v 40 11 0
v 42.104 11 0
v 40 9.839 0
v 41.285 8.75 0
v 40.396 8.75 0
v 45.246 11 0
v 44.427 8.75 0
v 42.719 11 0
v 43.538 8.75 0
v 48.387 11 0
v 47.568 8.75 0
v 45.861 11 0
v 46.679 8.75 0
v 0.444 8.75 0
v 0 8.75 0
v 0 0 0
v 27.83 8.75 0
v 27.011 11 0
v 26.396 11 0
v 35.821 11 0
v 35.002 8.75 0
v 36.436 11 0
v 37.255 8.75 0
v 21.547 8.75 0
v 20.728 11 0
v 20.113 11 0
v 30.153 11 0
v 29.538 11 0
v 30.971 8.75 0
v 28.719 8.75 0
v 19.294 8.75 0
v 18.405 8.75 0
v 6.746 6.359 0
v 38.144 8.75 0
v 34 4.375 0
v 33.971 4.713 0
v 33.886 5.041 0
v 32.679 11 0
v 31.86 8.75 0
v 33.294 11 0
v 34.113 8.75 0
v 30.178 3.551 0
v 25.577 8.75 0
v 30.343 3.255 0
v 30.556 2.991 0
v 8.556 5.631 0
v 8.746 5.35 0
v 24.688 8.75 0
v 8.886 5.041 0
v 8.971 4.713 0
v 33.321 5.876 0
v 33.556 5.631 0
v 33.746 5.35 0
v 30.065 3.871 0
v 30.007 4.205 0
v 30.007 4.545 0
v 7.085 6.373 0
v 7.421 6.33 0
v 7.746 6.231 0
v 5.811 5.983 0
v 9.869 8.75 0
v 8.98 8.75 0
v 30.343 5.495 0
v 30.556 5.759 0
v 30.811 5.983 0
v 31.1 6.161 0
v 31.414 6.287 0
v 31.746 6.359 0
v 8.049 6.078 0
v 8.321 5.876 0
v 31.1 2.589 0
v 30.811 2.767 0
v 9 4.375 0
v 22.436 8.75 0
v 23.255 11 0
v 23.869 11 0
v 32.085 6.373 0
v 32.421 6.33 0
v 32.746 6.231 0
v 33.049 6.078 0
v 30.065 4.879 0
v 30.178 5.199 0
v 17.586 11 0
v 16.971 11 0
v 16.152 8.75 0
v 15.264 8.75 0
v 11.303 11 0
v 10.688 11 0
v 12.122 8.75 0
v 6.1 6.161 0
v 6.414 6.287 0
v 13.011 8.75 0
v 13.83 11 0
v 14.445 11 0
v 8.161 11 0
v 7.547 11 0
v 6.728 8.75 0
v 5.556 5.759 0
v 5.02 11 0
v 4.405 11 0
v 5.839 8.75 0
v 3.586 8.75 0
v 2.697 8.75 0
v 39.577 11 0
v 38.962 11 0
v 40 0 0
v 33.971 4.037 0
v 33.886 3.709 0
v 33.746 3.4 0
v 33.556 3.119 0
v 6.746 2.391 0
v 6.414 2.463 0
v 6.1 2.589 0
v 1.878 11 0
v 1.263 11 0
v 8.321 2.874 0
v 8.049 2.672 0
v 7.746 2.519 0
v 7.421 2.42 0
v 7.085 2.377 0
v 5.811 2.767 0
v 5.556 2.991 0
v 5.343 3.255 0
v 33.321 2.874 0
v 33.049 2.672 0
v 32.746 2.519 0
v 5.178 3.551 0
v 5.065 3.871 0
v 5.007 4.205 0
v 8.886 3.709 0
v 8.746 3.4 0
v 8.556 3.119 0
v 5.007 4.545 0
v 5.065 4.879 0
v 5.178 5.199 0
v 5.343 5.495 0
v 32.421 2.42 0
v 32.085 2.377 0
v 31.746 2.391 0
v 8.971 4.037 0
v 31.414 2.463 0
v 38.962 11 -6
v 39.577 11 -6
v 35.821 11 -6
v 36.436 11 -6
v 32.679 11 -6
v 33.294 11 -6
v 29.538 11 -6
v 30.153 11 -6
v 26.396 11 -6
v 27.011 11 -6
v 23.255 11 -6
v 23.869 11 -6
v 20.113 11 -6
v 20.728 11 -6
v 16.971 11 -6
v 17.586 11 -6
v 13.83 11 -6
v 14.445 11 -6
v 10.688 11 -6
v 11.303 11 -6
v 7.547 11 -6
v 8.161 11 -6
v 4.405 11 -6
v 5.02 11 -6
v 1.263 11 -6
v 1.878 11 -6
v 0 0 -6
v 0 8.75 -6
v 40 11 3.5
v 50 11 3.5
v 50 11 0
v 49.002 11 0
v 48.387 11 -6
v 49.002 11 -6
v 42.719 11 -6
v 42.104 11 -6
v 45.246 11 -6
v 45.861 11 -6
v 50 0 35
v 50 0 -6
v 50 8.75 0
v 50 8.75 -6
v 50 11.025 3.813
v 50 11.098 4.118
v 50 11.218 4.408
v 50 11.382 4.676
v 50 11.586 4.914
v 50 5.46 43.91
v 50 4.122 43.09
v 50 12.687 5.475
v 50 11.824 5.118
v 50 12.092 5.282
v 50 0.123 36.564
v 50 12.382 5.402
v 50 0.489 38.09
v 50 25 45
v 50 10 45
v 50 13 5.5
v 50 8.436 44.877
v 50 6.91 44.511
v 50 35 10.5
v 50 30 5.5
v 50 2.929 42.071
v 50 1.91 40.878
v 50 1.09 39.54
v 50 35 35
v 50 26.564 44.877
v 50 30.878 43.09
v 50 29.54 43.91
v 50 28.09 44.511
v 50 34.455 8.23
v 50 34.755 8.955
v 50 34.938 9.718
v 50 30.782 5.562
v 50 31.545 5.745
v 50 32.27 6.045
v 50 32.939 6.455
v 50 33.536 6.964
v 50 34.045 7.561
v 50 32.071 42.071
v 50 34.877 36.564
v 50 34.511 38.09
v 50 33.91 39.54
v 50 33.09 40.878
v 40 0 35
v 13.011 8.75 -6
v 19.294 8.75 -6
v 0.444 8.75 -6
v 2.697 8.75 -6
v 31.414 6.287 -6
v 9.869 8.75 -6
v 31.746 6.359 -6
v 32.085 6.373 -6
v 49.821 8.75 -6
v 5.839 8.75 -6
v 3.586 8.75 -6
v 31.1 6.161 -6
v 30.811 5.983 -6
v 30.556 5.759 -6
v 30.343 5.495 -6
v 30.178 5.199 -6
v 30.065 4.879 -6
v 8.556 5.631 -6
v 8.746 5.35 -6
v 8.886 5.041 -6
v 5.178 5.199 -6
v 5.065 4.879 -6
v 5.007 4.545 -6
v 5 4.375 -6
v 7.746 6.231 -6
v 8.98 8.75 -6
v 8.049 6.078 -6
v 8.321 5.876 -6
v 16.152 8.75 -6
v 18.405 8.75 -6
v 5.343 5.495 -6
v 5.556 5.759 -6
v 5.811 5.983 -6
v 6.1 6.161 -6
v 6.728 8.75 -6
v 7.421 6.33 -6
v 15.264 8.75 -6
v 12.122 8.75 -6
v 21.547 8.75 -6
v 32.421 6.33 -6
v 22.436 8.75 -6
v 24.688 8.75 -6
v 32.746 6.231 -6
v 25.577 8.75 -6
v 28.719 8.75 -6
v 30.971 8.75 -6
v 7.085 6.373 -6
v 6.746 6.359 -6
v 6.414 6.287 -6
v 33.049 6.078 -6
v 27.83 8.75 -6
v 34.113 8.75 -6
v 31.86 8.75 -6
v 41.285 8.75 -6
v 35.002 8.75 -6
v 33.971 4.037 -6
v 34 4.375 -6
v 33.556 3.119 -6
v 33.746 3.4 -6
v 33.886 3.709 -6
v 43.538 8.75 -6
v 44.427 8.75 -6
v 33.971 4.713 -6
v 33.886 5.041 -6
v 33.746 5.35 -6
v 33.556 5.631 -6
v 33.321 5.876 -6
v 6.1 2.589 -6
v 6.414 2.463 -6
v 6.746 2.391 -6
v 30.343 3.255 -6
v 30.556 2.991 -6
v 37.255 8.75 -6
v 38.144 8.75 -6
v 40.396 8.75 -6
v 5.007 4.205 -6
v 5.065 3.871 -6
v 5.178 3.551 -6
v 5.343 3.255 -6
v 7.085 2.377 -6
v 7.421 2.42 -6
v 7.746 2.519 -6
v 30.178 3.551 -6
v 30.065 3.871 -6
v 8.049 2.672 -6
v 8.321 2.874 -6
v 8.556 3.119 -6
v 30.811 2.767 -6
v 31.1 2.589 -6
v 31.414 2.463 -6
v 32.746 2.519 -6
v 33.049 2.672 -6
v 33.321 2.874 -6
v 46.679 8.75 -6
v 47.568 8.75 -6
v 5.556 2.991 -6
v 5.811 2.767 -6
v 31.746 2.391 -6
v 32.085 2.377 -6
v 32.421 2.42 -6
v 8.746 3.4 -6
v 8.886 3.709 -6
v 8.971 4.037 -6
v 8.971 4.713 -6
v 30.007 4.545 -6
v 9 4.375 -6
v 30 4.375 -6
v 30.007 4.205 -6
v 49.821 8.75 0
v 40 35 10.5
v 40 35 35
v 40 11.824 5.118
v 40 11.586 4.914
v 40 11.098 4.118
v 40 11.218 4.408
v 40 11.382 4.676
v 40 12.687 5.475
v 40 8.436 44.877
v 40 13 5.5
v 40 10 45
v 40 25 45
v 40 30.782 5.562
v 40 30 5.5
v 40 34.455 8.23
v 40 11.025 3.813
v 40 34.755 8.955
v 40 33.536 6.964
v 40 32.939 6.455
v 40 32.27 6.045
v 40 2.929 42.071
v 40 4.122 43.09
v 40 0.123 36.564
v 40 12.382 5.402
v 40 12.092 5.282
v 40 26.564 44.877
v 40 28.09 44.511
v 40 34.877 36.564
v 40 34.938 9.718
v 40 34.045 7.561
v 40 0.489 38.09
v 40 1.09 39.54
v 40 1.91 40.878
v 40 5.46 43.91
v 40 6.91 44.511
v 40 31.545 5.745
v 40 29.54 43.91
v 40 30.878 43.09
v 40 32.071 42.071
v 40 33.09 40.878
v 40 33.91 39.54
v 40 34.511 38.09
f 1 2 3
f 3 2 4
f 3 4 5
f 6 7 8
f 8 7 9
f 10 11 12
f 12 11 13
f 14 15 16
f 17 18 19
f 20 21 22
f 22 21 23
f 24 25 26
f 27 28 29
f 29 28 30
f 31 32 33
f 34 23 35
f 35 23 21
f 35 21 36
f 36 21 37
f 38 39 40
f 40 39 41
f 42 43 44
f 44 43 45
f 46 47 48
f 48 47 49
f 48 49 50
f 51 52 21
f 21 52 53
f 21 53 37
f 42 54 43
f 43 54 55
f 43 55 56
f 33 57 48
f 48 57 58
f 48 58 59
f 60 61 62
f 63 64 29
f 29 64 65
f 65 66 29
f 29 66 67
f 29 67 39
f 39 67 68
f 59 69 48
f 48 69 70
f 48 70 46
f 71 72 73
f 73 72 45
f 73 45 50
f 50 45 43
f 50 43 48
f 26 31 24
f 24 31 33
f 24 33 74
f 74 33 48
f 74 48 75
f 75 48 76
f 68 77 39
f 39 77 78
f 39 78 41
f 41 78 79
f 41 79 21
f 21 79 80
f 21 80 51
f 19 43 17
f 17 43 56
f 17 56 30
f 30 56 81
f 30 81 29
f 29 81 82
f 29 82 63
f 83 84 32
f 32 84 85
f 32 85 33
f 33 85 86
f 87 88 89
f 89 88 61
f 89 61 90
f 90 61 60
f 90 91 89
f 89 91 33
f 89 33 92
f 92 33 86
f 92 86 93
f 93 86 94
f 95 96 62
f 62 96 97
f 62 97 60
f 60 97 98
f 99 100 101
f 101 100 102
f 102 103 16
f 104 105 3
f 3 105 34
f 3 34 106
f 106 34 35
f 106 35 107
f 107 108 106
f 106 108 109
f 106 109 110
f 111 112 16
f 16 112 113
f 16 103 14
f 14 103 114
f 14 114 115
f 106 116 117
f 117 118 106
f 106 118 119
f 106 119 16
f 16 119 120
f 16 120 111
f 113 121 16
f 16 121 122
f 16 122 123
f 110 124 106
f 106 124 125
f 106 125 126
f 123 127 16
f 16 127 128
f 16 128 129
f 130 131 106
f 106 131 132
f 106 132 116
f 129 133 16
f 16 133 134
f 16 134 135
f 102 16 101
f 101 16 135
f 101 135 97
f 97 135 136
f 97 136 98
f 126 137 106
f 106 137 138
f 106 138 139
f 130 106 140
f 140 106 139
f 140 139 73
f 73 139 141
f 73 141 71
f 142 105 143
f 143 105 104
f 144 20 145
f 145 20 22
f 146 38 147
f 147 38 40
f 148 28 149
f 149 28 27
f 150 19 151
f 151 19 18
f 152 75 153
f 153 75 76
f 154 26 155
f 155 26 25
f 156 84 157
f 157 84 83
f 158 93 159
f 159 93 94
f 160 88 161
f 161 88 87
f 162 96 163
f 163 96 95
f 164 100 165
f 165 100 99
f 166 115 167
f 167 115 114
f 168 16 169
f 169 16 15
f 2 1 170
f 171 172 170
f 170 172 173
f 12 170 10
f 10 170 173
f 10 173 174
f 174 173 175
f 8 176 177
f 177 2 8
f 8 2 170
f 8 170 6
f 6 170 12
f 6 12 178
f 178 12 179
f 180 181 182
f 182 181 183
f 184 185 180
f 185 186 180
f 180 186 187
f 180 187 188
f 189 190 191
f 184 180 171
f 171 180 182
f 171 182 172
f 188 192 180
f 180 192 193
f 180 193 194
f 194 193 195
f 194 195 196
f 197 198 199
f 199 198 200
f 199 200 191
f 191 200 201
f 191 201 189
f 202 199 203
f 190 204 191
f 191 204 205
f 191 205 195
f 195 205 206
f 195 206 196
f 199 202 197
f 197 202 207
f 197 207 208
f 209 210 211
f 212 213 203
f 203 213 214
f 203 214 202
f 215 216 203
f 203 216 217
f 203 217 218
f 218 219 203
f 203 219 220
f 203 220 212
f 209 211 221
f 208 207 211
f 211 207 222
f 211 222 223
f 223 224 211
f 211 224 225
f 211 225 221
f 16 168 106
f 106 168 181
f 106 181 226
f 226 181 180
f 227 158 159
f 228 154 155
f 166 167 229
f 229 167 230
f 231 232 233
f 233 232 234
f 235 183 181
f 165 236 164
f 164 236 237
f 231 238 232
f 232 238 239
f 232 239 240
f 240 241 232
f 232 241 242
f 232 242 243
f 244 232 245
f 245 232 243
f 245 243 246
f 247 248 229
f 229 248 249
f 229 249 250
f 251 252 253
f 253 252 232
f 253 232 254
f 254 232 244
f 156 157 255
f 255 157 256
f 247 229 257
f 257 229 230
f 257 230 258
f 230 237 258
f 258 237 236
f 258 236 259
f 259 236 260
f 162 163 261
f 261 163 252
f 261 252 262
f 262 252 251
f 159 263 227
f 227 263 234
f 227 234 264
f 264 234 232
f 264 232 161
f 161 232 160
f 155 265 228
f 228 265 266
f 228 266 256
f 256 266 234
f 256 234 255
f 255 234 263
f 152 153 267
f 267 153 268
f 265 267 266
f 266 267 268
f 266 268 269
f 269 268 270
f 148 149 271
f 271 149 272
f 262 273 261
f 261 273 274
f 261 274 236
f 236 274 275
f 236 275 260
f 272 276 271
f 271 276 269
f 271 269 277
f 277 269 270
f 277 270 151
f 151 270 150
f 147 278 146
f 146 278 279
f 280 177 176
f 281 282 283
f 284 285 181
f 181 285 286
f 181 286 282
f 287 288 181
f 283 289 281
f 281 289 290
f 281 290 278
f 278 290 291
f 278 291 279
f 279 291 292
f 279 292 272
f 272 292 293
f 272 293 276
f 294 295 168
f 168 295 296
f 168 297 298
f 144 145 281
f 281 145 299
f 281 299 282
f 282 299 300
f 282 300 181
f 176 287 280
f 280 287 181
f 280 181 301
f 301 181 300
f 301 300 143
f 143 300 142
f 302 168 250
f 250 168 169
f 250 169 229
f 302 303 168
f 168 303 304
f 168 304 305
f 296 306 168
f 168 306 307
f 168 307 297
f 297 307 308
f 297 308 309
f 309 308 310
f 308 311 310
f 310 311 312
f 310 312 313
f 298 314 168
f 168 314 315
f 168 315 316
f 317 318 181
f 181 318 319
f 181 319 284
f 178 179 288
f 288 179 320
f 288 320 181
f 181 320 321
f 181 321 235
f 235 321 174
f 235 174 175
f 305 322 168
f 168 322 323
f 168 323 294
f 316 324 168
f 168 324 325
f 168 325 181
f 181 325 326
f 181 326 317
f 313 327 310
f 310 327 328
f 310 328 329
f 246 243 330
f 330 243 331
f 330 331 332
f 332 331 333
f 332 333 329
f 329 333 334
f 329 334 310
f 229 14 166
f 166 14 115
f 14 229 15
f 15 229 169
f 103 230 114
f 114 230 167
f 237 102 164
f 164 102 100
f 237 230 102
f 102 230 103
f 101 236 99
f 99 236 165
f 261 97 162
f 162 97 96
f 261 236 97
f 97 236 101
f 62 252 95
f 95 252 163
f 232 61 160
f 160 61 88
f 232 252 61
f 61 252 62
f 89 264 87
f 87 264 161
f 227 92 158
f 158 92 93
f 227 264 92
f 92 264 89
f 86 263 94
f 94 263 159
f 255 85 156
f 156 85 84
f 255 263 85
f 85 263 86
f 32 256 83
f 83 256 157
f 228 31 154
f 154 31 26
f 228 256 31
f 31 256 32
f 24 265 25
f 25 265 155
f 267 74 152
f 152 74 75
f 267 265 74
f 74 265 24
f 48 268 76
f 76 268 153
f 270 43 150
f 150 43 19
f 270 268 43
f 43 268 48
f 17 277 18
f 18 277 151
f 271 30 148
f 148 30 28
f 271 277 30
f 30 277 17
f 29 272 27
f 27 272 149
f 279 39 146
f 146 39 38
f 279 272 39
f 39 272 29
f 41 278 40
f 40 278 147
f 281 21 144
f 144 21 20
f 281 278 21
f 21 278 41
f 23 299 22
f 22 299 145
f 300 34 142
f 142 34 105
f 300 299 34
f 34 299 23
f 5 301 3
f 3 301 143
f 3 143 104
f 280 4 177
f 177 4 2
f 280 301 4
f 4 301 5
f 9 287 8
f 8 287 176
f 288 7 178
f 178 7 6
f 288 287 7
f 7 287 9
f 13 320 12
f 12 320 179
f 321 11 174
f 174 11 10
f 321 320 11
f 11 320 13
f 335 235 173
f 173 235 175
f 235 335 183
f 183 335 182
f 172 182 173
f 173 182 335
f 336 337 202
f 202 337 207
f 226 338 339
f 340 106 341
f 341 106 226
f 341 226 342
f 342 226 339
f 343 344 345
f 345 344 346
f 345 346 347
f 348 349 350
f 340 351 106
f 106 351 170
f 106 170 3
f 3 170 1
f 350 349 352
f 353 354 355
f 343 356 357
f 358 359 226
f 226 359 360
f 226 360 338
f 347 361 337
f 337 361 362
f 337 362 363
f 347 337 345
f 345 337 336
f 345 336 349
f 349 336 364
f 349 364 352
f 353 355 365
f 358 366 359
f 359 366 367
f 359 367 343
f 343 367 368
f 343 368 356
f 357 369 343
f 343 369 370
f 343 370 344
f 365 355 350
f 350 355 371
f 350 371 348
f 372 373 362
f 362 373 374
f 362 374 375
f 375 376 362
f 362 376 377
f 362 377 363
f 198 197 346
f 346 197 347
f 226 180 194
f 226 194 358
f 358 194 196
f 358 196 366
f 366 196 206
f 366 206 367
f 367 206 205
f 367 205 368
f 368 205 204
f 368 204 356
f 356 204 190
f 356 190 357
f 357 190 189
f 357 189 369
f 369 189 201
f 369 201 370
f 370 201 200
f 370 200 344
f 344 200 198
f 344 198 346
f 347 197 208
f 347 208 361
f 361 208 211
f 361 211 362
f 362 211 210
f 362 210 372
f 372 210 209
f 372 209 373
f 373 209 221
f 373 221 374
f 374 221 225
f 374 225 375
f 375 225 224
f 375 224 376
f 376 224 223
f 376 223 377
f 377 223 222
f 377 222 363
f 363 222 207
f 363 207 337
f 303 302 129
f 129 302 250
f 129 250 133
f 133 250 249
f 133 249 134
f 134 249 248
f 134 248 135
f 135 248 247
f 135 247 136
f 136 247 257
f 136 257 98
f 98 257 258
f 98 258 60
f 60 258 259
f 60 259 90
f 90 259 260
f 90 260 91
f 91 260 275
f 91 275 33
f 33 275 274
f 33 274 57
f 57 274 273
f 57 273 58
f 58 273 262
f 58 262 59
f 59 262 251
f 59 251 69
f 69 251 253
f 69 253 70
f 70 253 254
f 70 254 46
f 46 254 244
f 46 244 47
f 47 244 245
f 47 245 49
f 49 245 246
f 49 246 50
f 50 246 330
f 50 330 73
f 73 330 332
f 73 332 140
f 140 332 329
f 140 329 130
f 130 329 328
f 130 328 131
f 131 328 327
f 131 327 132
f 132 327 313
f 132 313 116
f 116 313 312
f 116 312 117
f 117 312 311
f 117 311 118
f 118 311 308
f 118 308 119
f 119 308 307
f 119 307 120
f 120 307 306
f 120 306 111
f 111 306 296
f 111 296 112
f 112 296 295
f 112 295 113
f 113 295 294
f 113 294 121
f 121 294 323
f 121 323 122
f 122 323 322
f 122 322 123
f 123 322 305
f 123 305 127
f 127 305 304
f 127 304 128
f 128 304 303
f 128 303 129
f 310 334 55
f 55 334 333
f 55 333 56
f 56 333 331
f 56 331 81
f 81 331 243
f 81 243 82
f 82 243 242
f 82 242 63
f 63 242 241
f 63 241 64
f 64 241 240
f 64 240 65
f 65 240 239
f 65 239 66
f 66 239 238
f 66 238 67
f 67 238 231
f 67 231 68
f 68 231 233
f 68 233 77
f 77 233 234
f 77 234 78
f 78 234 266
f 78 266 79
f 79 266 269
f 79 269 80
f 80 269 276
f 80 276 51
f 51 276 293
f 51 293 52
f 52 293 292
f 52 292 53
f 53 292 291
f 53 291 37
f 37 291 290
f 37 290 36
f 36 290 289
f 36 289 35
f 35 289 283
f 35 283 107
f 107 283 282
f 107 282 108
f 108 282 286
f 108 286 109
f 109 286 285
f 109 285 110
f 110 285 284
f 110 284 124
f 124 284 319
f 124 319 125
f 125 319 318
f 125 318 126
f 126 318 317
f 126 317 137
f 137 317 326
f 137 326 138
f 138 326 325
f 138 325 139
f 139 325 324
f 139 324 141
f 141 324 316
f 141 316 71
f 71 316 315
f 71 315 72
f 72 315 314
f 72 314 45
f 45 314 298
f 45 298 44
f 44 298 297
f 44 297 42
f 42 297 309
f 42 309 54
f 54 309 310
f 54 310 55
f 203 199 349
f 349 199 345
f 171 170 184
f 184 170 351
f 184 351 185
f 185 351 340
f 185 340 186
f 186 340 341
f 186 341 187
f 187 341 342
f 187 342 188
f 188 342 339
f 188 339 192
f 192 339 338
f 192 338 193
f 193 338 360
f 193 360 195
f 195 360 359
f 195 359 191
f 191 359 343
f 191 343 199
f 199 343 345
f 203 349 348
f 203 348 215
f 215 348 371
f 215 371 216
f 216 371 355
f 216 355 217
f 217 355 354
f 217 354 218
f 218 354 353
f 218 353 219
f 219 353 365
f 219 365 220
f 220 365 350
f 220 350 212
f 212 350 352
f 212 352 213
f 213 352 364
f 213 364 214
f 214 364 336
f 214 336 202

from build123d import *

# Parameters (mm, degrees)
BLANKSKE_W          = 50
BLANKSKE_H          = 11
BLANK_DEPTH         = 6
TOOTHCUTSIM_DEPTH   = 52.546095875
TEETHCUTS_COUNT     = 17
TEETHCUTS_PITCH     = 3.14159265
SKETCH1_W           = 10
SKETCH1_H           = 35
BOSS_EXTRUDE1_DEPTH = 45
FILLET1_R           = 10
SKETCH2_R           = 2
CUT_EXTRUDE1_DEPTH  = 25
SKETCH4_W           = 5.5
SKETCH4_H           = 30
CUT_EXTRUDE2_DEPTH  = 10
FILLET3_R           = 2
FILLET4_R           = 5


with BuildPart() as part:
    # BlankSke → Blank (new body)
    with BuildSketch(Plane.XY):
        with Locations((25, 5.5)):
            Rectangle(BLANKSKE_W, BLANKSKE_H)
    extrude(amount=-BLANK_DEPTH)

    # TooCutSkeSim → ToothCutSim (cut, through all)
    with BuildSketch(Plane.XY):
        Polygon((0.44443537, 8.75), (-0.44443537, 8.75), (-1.272613241, 11.0254), (1.272613241, 11.0254), align=None)
    toothcutsim = extrude(amount=-TOOTHCUTSIM_DEPTH, mode=Mode.SUBTRACT)

    # TeethCuts: ToothCutSim ×17
    with Locations(*[(i * TEETHCUTS_PITCH, 0, 0) for i in range(1, TEETHCUTS_COUNT)]):
        add(toothcutsim, mode=Mode.SUBTRACT)

    # Sketch1 → Boss-Extrude1 (add)
    with BuildSketch(Plane.XY):
        with Locations((45, 17.5)):
            Rectangle(SKETCH1_W, SKETCH1_H)
    extrude(amount=BOSS_EXTRUDE1_DEPTH)

    # Fillet1
    fillet1_edges = [part.edges().sort_by_distance(p)[0] for p in [
        (45, 35, 45),
        (45, 0, 45),
    ]]
    fillet(fillet1_edges, radius=FILLET1_R)

    # Sketch2 → Cut-Extrude1 (cut)
    with BuildSketch(Plane.XY):
        with Locations((7, 4.375)):
            Circle(SKETCH2_R)
        with Locations((32, 4.375)):
            Circle(SKETCH2_R)
    extrude(amount=-CUT_EXTRUDE1_DEPTH, mode=Mode.SUBTRACT)

    # Sketch4 → Cut-Extrude2 (cut)
    with BuildSketch(Plane.ZY.offset(-40)):
        with Locations((2.75, 26)):
            Rectangle(SKETCH4_W, SKETCH4_H)
    extrude(amount=-CUT_EXTRUDE2_DEPTH, mode=Mode.SUBTRACT)

    # Fillet3
    fillet3_edges = [part.edges().sort_by_distance(p)[0] for p in [
        (45, 11, 5.5),
    ]]
    fillet(fillet3_edges, radius=FILLET3_R)

    # Fillet4
    fillet4_edges = [part.edges().sort_by_distance(p)[0] for p in [
        (45, 35, 5.5),
    ]]
    fillet(fillet4_edges, radius=FILLET4_R)


solid = part.part
